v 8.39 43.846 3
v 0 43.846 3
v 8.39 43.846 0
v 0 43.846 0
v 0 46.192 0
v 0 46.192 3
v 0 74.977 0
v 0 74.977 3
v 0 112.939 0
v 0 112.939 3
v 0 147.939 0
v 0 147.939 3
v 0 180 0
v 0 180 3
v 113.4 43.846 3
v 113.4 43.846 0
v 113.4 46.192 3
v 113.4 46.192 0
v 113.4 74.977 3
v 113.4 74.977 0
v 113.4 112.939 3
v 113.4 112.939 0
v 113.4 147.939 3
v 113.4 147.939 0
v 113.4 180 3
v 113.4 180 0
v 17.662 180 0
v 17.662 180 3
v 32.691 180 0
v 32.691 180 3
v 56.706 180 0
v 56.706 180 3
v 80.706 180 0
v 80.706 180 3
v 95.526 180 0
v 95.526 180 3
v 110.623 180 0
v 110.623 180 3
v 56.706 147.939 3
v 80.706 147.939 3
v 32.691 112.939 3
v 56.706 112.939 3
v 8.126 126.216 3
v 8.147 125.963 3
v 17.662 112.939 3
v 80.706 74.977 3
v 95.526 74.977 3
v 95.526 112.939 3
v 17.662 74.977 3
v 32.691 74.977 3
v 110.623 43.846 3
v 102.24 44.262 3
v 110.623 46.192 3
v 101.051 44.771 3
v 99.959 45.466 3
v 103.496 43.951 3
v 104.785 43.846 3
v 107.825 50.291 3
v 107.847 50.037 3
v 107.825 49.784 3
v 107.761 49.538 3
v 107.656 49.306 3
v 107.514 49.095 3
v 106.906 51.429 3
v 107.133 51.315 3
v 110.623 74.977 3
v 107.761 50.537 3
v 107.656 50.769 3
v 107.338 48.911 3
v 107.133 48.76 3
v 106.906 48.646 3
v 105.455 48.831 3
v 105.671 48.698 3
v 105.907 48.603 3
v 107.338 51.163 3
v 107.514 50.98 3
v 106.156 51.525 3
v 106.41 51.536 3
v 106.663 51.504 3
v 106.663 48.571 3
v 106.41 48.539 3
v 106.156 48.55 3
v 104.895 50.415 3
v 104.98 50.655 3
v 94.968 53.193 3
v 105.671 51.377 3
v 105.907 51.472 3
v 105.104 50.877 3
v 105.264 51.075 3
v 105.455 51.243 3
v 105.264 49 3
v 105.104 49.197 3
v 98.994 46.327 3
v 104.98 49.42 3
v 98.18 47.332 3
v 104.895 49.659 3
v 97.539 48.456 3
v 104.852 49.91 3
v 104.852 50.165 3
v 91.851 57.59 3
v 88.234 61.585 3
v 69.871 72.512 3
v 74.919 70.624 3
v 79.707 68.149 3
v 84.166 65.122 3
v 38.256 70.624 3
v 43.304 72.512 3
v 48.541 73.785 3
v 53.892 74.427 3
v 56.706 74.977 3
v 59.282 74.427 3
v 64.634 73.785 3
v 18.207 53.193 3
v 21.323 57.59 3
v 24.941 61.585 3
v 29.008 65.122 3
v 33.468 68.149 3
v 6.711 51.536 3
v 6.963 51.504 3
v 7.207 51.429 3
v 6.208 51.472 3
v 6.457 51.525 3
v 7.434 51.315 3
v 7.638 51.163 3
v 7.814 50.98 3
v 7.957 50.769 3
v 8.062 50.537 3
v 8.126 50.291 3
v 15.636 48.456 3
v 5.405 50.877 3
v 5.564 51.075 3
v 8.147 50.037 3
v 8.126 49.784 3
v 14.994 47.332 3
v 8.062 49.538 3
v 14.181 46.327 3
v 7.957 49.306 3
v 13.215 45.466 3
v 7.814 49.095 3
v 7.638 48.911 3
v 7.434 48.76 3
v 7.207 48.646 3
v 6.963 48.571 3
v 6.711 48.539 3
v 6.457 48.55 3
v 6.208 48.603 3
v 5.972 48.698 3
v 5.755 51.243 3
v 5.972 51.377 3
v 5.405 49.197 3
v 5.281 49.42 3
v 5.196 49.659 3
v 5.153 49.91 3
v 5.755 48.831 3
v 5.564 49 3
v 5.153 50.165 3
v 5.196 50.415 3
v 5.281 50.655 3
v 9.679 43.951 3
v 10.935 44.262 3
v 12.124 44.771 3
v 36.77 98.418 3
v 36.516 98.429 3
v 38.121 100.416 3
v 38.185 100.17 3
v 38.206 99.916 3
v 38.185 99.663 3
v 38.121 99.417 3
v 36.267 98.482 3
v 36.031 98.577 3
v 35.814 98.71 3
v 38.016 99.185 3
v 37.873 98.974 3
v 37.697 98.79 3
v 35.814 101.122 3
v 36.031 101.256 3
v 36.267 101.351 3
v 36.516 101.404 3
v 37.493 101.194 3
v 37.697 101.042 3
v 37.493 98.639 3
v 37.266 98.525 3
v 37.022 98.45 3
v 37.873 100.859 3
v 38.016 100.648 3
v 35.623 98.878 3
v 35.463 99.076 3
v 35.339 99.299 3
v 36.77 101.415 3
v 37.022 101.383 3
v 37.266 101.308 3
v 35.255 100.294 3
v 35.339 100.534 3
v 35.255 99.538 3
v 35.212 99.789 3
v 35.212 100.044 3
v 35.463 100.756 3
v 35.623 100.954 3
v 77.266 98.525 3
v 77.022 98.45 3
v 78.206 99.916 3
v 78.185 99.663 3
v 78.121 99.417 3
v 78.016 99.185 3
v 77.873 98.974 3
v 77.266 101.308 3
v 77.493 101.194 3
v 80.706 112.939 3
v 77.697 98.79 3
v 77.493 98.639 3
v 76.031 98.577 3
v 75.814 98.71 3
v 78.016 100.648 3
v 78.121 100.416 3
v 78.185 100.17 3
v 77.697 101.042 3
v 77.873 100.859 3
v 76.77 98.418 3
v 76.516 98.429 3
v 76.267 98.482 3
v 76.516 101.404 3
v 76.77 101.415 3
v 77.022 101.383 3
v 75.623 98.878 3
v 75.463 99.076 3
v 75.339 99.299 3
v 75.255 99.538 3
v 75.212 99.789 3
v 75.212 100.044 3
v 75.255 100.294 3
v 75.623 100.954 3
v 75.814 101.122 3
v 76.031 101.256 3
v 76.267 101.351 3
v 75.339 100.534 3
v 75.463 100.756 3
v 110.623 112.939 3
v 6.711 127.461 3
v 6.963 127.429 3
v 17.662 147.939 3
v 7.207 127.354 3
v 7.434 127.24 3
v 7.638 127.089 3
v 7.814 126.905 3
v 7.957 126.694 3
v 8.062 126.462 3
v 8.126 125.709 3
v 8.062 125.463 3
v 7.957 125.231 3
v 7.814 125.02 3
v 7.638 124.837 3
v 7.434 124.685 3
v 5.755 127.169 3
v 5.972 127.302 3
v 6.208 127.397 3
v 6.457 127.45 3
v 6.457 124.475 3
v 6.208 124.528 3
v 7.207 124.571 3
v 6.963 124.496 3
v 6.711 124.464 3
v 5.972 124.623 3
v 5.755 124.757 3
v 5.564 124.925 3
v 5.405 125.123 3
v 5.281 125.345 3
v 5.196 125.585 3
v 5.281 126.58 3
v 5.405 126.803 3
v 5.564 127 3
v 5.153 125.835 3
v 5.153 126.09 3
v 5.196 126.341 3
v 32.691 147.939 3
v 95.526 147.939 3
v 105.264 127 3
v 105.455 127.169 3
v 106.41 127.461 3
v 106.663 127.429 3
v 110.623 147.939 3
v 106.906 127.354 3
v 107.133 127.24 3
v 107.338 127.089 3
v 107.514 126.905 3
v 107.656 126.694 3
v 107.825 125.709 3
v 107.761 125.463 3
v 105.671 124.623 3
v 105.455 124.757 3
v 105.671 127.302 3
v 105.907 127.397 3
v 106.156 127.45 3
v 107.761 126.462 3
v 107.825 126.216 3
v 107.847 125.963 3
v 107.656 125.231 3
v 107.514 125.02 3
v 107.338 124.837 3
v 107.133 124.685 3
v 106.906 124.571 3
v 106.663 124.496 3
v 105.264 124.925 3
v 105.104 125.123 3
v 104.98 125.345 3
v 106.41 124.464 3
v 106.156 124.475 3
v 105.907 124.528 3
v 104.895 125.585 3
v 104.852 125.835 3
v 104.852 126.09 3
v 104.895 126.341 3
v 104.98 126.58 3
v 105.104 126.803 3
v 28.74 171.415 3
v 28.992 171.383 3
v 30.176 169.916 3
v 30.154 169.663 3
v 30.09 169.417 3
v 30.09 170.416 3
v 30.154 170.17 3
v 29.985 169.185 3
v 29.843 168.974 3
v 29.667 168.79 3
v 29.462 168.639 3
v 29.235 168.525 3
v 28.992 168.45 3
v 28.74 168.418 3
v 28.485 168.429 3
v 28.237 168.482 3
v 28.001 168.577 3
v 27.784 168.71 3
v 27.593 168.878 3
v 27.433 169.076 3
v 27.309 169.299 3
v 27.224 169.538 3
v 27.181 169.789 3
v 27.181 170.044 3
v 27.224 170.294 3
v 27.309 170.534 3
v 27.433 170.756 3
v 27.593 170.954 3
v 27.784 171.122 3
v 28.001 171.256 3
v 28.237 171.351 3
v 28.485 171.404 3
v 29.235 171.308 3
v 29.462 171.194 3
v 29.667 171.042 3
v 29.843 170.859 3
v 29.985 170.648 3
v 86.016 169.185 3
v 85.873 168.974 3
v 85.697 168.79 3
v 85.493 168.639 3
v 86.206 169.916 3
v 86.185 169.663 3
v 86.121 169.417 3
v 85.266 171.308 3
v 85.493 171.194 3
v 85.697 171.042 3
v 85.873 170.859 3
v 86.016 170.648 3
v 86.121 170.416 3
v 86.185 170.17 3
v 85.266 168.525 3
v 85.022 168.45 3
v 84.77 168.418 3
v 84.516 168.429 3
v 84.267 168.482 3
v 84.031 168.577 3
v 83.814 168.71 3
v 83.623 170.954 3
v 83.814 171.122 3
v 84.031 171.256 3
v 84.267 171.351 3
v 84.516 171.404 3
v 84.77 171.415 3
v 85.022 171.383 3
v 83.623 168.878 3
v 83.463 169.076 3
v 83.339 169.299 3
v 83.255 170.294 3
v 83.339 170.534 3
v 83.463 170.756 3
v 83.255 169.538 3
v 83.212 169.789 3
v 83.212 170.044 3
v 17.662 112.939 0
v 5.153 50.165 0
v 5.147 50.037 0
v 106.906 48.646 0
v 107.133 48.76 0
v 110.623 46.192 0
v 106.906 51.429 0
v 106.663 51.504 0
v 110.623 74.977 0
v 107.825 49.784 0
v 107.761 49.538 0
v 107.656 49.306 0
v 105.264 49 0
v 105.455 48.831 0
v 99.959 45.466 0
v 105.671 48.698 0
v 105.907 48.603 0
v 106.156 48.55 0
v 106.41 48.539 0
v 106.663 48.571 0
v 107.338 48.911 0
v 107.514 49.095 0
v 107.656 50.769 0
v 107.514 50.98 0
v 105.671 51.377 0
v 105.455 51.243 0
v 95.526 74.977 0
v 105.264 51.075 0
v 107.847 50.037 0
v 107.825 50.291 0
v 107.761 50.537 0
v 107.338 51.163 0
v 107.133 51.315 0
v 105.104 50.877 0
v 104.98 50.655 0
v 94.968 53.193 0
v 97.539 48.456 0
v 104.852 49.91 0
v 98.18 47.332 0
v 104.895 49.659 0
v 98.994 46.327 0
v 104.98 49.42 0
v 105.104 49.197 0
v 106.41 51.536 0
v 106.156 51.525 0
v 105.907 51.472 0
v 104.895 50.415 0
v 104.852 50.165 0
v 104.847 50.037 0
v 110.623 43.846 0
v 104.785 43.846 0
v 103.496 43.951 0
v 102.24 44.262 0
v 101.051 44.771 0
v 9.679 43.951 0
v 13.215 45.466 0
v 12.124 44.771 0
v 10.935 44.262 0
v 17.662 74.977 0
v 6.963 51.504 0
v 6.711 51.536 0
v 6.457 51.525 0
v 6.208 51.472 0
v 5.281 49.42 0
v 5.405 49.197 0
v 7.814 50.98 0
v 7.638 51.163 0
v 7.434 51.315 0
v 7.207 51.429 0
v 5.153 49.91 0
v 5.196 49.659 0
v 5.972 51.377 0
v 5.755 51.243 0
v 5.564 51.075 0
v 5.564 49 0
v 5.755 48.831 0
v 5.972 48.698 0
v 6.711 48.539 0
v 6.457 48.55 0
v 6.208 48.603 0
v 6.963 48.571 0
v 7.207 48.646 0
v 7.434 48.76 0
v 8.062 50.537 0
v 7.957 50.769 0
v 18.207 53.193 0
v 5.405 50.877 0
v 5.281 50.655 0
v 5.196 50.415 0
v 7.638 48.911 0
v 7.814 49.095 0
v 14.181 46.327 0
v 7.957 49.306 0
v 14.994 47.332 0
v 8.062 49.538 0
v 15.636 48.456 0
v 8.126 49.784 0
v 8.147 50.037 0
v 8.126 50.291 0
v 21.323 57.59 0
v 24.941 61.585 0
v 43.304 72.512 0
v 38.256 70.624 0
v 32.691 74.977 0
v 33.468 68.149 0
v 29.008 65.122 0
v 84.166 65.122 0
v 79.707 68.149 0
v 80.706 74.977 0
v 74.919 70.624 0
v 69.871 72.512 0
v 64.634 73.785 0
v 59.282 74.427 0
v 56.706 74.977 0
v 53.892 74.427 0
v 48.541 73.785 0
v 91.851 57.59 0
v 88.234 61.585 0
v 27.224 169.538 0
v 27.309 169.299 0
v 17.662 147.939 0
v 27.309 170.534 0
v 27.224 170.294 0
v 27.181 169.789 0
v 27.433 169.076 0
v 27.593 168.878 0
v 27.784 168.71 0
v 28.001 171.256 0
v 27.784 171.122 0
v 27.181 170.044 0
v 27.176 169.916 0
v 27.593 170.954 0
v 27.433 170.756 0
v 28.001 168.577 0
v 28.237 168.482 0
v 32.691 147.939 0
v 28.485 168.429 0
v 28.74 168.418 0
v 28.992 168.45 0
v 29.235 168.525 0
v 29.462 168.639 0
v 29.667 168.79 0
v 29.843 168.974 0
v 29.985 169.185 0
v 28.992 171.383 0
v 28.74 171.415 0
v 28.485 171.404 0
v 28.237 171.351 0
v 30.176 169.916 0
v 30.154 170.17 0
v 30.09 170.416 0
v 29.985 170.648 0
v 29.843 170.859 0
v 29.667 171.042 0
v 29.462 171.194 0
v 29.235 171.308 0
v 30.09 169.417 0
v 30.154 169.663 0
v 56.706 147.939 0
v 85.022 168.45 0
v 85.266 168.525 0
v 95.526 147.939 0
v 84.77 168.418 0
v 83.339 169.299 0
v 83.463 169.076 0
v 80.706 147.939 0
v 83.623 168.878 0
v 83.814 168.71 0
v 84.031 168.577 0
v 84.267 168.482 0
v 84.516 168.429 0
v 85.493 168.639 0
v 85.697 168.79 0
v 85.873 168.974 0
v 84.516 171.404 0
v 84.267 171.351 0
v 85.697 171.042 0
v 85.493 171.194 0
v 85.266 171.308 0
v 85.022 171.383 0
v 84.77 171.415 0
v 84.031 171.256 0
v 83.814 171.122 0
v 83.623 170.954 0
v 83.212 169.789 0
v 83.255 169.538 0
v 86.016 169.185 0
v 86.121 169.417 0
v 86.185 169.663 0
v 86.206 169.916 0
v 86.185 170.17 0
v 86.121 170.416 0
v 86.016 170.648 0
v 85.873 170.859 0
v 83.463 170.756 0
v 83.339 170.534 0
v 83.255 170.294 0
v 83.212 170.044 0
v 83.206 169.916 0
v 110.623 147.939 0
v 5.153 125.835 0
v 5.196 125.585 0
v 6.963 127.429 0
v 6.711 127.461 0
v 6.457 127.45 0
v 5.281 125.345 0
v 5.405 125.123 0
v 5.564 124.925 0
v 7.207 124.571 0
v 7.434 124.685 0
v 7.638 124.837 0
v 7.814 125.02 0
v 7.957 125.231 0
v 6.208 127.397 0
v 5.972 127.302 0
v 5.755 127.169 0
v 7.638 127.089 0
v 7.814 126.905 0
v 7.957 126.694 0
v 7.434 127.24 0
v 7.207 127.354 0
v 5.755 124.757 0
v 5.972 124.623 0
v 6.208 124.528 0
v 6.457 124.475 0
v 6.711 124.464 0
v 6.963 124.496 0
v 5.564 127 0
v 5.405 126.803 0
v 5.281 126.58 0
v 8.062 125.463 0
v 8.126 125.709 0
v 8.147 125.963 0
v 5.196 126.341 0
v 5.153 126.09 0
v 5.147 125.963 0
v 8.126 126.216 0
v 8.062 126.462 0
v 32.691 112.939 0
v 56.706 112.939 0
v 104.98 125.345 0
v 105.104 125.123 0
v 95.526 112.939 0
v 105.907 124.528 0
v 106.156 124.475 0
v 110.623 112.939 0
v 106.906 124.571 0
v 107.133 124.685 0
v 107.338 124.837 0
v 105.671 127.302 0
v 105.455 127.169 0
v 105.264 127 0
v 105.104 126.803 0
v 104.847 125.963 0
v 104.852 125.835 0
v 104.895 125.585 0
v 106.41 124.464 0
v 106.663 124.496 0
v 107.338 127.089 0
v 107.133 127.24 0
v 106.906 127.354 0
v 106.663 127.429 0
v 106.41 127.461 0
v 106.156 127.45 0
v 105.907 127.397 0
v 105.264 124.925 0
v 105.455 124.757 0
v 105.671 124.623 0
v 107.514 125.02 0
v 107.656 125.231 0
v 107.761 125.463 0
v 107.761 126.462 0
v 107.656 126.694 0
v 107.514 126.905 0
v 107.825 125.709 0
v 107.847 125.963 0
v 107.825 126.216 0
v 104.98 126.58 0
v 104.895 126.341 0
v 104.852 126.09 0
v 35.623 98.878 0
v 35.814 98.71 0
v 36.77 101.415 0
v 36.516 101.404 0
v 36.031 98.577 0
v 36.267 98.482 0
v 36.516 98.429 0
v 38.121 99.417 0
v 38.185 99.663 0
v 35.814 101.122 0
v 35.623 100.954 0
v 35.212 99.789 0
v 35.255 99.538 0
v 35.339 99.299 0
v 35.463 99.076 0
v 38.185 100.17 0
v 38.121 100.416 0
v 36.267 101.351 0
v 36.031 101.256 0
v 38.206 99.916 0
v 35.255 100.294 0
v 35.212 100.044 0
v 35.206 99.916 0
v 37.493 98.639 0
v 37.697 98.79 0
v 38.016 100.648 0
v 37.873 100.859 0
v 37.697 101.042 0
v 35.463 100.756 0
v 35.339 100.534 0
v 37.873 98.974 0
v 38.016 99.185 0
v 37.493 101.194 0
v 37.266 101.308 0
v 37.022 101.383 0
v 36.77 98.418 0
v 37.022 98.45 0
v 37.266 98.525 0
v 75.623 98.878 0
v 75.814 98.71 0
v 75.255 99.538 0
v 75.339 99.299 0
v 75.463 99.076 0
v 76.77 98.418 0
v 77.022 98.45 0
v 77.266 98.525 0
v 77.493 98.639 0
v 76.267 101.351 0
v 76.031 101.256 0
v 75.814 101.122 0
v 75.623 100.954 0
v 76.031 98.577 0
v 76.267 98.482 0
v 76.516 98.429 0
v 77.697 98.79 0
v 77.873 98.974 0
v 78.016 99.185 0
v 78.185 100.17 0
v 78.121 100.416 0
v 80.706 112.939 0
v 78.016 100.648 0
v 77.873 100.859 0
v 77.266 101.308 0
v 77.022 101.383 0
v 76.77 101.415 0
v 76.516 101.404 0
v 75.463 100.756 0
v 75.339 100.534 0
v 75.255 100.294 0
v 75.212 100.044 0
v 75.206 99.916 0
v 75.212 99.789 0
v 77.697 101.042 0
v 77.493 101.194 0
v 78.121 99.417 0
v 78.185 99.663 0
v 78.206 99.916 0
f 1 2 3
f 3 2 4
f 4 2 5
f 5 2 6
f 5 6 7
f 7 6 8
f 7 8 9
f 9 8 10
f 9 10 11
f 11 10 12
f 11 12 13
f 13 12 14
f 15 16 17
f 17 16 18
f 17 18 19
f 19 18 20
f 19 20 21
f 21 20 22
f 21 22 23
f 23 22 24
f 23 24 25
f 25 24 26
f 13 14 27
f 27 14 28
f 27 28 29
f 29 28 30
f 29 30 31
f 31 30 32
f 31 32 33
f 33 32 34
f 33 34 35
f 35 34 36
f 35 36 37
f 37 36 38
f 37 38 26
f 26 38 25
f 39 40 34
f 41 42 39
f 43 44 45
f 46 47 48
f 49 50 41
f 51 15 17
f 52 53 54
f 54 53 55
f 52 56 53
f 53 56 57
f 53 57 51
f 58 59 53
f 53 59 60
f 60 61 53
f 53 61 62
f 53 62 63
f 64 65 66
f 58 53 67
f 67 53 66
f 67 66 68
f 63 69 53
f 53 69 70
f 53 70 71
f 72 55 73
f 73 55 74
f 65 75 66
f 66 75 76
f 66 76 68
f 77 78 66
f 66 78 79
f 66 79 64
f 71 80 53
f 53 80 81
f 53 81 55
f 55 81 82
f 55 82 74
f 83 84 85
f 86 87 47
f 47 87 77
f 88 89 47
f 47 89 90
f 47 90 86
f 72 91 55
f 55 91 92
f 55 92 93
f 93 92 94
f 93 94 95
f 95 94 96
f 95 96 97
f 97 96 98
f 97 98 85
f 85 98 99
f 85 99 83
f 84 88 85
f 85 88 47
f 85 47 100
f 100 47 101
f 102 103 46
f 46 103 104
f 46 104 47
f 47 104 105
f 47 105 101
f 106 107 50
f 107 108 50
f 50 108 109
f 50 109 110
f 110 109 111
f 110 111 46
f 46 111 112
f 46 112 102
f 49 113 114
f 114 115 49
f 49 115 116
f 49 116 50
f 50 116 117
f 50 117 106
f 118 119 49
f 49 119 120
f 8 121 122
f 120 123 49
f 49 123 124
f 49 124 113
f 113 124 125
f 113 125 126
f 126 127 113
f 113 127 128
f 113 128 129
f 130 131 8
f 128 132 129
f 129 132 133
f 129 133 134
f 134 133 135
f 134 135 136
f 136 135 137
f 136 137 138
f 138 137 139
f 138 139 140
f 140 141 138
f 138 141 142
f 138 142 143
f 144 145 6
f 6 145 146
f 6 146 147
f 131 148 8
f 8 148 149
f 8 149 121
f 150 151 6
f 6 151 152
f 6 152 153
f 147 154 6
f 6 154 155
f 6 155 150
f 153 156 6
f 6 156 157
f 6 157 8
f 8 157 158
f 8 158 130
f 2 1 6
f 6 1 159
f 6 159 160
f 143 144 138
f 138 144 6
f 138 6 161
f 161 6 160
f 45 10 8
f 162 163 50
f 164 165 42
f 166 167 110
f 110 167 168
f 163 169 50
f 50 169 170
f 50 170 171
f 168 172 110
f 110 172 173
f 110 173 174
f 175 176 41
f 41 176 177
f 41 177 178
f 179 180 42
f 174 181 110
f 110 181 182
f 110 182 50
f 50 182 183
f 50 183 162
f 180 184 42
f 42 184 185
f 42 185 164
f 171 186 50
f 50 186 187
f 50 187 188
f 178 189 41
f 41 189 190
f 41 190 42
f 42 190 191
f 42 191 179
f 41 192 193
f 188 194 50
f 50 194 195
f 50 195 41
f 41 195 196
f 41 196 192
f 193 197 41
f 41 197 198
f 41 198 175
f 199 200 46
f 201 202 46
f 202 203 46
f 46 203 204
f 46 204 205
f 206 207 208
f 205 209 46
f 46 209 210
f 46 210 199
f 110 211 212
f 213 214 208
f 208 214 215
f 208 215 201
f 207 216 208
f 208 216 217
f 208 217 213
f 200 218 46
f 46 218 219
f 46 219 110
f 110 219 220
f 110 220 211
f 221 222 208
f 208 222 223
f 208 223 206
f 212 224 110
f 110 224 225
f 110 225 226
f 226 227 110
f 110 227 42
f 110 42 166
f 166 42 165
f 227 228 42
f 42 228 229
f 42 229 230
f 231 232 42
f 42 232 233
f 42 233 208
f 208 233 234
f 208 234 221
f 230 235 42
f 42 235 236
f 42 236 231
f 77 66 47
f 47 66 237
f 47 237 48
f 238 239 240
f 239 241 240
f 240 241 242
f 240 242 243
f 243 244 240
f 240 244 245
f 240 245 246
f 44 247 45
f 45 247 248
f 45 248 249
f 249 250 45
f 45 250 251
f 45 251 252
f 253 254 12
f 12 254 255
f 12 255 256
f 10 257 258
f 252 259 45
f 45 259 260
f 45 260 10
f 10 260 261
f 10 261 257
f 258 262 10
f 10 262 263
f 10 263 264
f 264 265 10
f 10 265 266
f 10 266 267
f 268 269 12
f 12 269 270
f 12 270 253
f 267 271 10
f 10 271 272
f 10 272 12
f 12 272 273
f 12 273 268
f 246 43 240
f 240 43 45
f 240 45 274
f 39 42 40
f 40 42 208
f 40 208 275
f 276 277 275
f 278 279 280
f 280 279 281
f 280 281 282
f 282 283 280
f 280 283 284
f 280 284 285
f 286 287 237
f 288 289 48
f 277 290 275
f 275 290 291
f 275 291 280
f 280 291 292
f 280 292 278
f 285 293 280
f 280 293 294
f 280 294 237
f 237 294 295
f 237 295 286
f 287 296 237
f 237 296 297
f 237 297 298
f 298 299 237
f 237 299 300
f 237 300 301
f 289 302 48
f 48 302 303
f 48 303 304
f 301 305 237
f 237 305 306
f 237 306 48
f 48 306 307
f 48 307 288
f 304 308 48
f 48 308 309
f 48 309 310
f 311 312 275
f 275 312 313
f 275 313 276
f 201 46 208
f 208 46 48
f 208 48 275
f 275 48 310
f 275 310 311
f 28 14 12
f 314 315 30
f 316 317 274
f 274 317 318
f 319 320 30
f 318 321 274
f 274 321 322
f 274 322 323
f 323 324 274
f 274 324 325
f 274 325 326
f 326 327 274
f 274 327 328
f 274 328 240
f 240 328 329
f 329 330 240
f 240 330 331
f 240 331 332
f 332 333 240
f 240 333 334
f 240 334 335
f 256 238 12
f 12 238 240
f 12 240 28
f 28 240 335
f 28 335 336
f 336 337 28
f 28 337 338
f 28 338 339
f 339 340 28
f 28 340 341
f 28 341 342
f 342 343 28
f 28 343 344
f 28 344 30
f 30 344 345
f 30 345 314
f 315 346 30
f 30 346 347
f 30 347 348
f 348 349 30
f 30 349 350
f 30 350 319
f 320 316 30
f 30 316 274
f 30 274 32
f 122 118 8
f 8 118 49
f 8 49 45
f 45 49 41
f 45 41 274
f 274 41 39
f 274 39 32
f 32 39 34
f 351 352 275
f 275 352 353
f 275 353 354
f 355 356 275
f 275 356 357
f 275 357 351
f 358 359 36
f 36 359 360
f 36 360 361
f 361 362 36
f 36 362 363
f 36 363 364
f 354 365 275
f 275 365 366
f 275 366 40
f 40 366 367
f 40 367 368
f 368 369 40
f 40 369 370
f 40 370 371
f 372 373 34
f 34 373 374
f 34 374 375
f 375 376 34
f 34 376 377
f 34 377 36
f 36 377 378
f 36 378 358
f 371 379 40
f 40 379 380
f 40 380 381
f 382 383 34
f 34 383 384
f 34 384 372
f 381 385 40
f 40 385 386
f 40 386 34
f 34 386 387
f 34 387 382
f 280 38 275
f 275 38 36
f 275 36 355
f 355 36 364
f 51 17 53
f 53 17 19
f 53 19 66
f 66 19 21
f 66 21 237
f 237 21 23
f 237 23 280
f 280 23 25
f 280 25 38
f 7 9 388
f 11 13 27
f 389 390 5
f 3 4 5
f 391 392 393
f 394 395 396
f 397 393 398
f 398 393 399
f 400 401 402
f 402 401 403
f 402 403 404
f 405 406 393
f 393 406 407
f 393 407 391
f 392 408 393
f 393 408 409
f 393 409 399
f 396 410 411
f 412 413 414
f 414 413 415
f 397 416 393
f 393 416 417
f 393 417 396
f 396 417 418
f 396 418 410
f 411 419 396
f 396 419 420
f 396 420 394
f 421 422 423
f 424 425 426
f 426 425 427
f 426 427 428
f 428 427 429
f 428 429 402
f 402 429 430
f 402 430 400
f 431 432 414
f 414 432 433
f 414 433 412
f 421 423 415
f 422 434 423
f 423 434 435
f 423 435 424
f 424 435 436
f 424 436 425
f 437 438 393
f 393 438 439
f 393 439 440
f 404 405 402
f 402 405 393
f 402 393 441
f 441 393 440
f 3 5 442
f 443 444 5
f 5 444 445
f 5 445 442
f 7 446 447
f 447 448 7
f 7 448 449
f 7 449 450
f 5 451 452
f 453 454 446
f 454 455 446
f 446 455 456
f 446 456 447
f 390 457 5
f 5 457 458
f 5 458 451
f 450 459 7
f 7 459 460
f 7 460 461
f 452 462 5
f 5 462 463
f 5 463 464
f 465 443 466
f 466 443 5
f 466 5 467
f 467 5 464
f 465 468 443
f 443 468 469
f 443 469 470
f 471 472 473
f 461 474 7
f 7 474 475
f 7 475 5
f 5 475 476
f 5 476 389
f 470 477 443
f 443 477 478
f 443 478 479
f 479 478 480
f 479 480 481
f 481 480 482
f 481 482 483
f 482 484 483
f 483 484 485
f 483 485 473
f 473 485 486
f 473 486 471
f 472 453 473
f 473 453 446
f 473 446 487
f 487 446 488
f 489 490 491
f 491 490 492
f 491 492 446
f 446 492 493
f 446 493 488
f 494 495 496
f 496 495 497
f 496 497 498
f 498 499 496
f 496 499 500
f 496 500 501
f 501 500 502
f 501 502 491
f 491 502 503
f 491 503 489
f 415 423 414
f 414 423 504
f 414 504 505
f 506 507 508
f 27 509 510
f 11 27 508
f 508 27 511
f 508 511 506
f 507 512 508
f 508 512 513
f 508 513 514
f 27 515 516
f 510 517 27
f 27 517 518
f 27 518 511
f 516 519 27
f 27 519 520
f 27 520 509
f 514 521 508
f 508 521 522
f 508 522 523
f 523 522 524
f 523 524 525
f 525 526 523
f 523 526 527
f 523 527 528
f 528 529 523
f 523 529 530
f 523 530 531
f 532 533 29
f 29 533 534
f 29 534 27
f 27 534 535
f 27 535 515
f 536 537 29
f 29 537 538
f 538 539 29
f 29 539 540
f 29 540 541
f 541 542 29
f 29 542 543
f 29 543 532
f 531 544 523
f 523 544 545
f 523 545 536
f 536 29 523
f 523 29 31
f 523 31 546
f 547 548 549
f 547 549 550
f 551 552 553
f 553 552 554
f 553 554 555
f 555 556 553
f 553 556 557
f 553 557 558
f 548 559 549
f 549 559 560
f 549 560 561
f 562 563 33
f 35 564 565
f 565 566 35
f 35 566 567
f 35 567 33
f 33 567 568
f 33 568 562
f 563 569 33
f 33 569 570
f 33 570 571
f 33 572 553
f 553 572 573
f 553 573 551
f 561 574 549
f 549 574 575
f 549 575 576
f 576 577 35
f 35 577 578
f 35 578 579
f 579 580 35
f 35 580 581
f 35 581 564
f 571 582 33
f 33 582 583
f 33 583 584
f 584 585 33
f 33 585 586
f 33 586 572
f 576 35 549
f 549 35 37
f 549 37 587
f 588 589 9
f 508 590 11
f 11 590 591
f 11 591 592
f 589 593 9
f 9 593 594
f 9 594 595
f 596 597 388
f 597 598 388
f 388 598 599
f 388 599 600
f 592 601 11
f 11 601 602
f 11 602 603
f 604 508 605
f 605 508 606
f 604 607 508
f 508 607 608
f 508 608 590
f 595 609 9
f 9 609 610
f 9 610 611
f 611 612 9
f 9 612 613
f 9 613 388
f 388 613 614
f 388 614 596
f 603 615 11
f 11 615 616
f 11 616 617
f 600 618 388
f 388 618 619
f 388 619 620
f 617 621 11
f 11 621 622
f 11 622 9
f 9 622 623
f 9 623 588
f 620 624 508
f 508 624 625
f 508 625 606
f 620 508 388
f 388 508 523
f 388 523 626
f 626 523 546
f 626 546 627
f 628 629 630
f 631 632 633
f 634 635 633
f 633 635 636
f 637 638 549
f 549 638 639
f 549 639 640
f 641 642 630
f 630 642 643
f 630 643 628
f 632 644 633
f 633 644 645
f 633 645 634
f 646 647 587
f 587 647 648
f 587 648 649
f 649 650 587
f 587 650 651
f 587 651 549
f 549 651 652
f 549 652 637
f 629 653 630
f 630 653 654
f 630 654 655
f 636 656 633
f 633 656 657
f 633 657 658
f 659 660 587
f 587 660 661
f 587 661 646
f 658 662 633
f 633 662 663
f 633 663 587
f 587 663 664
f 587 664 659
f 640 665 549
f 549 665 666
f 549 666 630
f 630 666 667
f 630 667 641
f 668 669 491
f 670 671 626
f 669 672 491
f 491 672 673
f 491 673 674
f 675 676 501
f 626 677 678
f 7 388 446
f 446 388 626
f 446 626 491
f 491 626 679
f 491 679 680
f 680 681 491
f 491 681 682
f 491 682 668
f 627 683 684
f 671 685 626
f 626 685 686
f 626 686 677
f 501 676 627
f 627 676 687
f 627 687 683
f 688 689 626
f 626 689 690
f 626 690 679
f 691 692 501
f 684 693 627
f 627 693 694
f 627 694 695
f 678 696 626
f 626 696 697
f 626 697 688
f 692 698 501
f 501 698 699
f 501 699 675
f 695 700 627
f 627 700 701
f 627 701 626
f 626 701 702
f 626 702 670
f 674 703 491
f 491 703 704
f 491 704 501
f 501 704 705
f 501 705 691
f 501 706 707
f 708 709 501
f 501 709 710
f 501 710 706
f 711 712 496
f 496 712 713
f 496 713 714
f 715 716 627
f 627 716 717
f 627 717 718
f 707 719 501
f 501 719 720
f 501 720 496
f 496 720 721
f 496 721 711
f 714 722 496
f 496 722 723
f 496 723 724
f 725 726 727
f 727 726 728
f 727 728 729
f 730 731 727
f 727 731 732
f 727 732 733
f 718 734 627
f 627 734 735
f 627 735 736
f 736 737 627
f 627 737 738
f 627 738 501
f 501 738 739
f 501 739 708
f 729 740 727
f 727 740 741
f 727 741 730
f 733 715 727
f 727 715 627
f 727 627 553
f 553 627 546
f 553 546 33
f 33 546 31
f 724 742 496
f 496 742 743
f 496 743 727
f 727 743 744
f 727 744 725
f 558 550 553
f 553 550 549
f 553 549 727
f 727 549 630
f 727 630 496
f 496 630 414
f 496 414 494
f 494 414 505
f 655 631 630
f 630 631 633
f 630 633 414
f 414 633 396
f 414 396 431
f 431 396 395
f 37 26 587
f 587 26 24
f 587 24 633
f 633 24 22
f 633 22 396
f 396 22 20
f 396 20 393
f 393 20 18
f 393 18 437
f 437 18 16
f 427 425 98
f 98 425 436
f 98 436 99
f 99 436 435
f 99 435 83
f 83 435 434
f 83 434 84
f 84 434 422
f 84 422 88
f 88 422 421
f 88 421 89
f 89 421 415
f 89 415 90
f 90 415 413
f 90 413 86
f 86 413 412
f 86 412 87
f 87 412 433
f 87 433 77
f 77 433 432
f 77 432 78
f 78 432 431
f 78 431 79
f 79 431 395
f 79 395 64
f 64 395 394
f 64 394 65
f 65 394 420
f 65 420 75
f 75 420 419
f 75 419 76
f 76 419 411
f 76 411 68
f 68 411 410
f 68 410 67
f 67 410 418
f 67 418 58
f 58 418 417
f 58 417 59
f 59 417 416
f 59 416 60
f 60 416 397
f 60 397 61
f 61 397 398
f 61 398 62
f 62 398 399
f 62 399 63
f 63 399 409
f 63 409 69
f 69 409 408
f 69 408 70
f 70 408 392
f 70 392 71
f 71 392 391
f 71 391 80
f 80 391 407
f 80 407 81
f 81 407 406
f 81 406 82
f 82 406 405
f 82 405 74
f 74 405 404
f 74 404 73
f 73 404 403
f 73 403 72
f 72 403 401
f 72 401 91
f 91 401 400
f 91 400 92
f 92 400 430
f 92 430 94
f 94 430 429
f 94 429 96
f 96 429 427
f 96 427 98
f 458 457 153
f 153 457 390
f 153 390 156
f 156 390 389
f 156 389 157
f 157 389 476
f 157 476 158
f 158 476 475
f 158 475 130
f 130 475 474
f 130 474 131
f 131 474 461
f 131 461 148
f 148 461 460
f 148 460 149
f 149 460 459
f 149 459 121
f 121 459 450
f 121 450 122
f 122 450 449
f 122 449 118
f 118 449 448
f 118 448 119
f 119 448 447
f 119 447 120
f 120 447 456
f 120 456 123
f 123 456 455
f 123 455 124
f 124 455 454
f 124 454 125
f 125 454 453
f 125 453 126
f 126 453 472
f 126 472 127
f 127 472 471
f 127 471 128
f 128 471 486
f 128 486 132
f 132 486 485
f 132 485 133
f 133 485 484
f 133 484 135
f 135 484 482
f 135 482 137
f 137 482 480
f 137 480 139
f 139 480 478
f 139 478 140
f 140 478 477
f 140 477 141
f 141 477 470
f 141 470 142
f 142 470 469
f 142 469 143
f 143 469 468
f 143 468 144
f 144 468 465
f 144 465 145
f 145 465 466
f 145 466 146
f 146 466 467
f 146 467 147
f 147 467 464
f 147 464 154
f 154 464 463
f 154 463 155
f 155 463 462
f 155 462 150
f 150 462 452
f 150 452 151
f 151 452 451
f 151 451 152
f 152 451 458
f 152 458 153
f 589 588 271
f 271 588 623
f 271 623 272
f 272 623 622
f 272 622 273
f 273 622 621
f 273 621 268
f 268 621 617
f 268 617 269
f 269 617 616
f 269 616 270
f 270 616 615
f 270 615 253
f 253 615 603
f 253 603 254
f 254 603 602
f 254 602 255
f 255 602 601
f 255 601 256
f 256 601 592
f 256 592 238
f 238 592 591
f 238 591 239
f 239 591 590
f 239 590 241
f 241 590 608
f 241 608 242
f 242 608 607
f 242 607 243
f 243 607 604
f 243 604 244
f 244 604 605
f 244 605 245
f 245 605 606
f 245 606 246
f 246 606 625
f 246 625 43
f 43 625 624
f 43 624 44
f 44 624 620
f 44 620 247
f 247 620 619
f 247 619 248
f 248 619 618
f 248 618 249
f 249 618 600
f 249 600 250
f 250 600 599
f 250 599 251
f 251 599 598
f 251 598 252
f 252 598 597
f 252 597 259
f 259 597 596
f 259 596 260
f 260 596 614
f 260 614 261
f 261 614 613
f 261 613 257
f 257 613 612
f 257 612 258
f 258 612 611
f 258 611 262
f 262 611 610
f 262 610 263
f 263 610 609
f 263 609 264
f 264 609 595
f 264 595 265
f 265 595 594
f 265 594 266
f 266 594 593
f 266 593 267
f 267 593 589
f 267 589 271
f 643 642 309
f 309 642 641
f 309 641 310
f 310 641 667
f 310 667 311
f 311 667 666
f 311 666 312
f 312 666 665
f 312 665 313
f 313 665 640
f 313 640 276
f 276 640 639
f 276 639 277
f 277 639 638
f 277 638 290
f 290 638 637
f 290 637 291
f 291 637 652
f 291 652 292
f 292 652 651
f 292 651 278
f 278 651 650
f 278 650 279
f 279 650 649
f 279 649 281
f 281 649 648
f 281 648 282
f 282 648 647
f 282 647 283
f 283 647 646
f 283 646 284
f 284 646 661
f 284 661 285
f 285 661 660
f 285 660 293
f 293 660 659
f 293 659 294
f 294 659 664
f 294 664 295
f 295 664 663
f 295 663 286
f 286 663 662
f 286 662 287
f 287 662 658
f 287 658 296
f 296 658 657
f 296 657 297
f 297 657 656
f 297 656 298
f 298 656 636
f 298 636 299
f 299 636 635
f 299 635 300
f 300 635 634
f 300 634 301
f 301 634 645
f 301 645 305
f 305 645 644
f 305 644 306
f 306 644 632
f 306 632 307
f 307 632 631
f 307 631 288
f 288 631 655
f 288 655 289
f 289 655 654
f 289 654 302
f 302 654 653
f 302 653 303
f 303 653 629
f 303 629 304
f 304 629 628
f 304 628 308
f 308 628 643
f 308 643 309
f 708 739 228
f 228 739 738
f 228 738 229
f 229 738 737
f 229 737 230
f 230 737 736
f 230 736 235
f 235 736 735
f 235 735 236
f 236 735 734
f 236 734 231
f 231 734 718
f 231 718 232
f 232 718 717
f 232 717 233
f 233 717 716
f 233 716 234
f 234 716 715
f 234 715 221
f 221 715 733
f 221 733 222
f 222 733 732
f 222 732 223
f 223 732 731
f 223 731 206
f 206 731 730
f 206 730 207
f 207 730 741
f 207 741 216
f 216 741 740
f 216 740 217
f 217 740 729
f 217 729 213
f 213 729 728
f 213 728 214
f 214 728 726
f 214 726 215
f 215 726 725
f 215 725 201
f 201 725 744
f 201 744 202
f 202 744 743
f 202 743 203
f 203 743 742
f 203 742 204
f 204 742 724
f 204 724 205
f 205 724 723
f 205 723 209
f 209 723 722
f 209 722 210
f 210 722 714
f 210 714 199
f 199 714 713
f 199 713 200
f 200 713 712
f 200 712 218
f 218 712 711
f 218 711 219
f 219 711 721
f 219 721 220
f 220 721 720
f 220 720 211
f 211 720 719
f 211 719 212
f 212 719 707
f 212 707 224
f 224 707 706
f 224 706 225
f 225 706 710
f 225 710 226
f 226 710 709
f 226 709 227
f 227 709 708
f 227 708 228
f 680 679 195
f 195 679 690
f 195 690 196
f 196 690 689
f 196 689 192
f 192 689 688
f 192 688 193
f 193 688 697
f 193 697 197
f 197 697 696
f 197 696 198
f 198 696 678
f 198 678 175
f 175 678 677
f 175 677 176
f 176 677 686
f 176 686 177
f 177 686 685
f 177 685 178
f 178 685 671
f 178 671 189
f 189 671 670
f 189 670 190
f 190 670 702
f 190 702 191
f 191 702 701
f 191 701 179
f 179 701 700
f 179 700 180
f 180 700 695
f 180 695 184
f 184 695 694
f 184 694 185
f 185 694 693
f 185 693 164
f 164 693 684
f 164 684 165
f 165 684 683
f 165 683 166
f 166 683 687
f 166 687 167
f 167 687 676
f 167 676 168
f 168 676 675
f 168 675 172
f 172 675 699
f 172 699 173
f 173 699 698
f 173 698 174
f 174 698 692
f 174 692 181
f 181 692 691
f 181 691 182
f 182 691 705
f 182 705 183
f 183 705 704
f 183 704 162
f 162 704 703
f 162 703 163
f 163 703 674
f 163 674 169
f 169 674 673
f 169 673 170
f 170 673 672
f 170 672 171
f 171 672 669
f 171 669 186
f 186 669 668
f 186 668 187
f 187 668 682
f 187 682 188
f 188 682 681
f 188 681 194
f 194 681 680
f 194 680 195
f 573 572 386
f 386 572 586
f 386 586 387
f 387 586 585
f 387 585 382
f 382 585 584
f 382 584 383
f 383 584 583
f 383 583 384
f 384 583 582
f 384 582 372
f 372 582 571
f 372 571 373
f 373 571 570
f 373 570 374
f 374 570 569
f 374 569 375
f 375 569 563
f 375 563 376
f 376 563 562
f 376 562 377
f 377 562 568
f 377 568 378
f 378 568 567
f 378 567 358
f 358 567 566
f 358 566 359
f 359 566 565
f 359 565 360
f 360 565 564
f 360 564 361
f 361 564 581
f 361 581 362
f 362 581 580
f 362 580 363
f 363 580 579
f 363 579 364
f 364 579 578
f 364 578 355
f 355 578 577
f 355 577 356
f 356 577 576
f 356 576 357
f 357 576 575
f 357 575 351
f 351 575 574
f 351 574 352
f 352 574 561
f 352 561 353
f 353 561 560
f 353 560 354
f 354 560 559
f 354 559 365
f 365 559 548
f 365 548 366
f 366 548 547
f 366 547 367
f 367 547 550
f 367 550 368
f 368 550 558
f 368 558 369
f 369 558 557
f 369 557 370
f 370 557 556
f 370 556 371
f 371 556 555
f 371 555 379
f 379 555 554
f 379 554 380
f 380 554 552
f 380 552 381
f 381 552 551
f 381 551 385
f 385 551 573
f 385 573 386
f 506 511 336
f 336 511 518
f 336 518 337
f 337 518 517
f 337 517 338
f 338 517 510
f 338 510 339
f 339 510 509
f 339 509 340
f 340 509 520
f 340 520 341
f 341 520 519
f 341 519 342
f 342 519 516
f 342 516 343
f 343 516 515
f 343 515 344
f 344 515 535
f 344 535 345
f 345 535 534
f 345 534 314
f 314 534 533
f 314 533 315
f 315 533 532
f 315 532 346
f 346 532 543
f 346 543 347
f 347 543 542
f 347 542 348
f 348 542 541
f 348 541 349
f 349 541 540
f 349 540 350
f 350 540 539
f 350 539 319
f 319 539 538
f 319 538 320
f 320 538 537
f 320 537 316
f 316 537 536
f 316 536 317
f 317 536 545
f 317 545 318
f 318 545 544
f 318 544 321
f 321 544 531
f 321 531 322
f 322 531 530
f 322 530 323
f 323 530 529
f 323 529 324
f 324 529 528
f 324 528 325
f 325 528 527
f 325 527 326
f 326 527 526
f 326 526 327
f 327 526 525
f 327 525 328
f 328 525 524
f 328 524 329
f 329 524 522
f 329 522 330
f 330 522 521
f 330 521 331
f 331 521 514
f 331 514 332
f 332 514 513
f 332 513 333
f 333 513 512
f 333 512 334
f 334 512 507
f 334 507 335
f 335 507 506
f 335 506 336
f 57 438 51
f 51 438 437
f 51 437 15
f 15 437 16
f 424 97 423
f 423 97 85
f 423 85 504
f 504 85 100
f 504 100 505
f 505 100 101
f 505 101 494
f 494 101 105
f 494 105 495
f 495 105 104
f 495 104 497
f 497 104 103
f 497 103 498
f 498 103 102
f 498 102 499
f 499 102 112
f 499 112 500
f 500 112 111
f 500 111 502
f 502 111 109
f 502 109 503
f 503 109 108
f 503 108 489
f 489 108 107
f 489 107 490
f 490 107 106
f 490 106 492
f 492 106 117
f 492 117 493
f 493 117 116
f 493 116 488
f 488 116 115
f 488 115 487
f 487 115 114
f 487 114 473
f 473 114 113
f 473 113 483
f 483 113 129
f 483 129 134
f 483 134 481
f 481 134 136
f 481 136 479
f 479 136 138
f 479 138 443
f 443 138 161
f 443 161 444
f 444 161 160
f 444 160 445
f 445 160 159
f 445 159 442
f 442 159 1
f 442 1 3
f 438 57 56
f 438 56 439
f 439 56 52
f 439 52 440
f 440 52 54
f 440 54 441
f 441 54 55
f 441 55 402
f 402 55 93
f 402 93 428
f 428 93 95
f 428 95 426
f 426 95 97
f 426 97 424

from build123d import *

# Parameters (mm, degrees)
ESQUISSE1_W             = 113.4
ESQUISSE1_H             = 180
BOSS_EXTRU_1_DEPTH      = 3
ESQUISSE2_R             = 1.5
ENL_V_MAT_EXTRU_1_DEPTH = 10
ESQUISSE3_R             = 1.5
ENL_V_MAT_EXTRU_2_DEPTH = 10
ESQUISSE5_W             = 114.090437321
ESQUISSE5_H             = 45.152715072
ENL_V_MAT_EXTRU_3_DEPTH = 10
ENL_V_MAT_EXTRU_4_DEPTH = 10
CONG_2_R                = 8


with BuildPart() as part:
    # Esquisse1 → Boss.-Extru.1 (new body)
    with BuildSketch(Plane.XY):
        with Locations((56.7, 90)):
            Rectangle(ESQUISSE1_W, ESQUISSE1_H)
    extrude(amount=BOSS_EXTRU_1_DEPTH)

    # Esquisse2 → Enlèv. mat.-Extru.1 (cut)
    with BuildSketch(Plane.XY.offset(3)):
        with Locations((106.346648171, 50.037457394)):
            Circle(ESQUISSE2_R)
        with Locations((6.647370572, 50.037457394)):
            Circle(ESQUISSE2_R)
        with Locations((6.647370572, 125.962542606)):
            Circle(ESQUISSE2_R)
        with Locations((106.346648171, 125.962542606)):
            Circle(ESQUISSE2_R)
    extrude(amount=-ENL_V_MAT_EXTRU_1_DEPTH, mode=Mode.SUBTRACT)

    # Esquisse3 → Enlèv. mat.-Extru.2 (cut)
    with BuildSketch(Plane.XY.offset(3)):
        with Locations((76.706231896, 99.916374803)):
            Circle(ESQUISSE3_R)
        with Locations((36.706231896, 99.916374803)):
            Circle(ESQUISSE3_R)
        with Locations((84.706231896, 169.916374803)):
            Circle(ESQUISSE3_R)
        with Locations((28.675912775, 169.916374803)):
            Circle(ESQUISSE3_R)
    extrude(amount=-ENL_V_MAT_EXTRU_2_DEPTH, mode=Mode.SUBTRACT)

    # Esquisse5 → Enlèv. mat.-Extru.3 (cut)
    with BuildSketch(Plane.XY.offset(3)):
        with Locations((56.35478134, 21.269970053)):
            Rectangle(ESQUISSE5_W, ESQUISSE5_H)
    extrude(amount=-ENL_V_MAT_EXTRU_3_DEPTH, mode=Mode.SUBTRACT)

    # Esquisse6 → Enlèv. mat.-Extru.4 (cut)
    with BuildSketch(Plane.XY.offset(3)):
        with BuildLine():
            Line((99.394396977, 43.846327589), (13.780181086, 43.846327589))
            ThreePointArc((13.780181086, 43.846327589), (56.587289031, 74.506937859), (99.394396977, 43.846327589))
        make_face()
    extrude(amount=-ENL_V_MAT_EXTRU_4_DEPTH, mode=Mode.SUBTRACT)

    # Congé2
    cong_2_edges = [part.edges().sort_by_distance(p)[0] for p in [
        (99.394396977, 43.846327589, 1.5),
        (13.780181086, 43.846327589, 1.5),
    ]]
    fillet(cong_2_edges, radius=CONG_2_R)


solid = part.part
